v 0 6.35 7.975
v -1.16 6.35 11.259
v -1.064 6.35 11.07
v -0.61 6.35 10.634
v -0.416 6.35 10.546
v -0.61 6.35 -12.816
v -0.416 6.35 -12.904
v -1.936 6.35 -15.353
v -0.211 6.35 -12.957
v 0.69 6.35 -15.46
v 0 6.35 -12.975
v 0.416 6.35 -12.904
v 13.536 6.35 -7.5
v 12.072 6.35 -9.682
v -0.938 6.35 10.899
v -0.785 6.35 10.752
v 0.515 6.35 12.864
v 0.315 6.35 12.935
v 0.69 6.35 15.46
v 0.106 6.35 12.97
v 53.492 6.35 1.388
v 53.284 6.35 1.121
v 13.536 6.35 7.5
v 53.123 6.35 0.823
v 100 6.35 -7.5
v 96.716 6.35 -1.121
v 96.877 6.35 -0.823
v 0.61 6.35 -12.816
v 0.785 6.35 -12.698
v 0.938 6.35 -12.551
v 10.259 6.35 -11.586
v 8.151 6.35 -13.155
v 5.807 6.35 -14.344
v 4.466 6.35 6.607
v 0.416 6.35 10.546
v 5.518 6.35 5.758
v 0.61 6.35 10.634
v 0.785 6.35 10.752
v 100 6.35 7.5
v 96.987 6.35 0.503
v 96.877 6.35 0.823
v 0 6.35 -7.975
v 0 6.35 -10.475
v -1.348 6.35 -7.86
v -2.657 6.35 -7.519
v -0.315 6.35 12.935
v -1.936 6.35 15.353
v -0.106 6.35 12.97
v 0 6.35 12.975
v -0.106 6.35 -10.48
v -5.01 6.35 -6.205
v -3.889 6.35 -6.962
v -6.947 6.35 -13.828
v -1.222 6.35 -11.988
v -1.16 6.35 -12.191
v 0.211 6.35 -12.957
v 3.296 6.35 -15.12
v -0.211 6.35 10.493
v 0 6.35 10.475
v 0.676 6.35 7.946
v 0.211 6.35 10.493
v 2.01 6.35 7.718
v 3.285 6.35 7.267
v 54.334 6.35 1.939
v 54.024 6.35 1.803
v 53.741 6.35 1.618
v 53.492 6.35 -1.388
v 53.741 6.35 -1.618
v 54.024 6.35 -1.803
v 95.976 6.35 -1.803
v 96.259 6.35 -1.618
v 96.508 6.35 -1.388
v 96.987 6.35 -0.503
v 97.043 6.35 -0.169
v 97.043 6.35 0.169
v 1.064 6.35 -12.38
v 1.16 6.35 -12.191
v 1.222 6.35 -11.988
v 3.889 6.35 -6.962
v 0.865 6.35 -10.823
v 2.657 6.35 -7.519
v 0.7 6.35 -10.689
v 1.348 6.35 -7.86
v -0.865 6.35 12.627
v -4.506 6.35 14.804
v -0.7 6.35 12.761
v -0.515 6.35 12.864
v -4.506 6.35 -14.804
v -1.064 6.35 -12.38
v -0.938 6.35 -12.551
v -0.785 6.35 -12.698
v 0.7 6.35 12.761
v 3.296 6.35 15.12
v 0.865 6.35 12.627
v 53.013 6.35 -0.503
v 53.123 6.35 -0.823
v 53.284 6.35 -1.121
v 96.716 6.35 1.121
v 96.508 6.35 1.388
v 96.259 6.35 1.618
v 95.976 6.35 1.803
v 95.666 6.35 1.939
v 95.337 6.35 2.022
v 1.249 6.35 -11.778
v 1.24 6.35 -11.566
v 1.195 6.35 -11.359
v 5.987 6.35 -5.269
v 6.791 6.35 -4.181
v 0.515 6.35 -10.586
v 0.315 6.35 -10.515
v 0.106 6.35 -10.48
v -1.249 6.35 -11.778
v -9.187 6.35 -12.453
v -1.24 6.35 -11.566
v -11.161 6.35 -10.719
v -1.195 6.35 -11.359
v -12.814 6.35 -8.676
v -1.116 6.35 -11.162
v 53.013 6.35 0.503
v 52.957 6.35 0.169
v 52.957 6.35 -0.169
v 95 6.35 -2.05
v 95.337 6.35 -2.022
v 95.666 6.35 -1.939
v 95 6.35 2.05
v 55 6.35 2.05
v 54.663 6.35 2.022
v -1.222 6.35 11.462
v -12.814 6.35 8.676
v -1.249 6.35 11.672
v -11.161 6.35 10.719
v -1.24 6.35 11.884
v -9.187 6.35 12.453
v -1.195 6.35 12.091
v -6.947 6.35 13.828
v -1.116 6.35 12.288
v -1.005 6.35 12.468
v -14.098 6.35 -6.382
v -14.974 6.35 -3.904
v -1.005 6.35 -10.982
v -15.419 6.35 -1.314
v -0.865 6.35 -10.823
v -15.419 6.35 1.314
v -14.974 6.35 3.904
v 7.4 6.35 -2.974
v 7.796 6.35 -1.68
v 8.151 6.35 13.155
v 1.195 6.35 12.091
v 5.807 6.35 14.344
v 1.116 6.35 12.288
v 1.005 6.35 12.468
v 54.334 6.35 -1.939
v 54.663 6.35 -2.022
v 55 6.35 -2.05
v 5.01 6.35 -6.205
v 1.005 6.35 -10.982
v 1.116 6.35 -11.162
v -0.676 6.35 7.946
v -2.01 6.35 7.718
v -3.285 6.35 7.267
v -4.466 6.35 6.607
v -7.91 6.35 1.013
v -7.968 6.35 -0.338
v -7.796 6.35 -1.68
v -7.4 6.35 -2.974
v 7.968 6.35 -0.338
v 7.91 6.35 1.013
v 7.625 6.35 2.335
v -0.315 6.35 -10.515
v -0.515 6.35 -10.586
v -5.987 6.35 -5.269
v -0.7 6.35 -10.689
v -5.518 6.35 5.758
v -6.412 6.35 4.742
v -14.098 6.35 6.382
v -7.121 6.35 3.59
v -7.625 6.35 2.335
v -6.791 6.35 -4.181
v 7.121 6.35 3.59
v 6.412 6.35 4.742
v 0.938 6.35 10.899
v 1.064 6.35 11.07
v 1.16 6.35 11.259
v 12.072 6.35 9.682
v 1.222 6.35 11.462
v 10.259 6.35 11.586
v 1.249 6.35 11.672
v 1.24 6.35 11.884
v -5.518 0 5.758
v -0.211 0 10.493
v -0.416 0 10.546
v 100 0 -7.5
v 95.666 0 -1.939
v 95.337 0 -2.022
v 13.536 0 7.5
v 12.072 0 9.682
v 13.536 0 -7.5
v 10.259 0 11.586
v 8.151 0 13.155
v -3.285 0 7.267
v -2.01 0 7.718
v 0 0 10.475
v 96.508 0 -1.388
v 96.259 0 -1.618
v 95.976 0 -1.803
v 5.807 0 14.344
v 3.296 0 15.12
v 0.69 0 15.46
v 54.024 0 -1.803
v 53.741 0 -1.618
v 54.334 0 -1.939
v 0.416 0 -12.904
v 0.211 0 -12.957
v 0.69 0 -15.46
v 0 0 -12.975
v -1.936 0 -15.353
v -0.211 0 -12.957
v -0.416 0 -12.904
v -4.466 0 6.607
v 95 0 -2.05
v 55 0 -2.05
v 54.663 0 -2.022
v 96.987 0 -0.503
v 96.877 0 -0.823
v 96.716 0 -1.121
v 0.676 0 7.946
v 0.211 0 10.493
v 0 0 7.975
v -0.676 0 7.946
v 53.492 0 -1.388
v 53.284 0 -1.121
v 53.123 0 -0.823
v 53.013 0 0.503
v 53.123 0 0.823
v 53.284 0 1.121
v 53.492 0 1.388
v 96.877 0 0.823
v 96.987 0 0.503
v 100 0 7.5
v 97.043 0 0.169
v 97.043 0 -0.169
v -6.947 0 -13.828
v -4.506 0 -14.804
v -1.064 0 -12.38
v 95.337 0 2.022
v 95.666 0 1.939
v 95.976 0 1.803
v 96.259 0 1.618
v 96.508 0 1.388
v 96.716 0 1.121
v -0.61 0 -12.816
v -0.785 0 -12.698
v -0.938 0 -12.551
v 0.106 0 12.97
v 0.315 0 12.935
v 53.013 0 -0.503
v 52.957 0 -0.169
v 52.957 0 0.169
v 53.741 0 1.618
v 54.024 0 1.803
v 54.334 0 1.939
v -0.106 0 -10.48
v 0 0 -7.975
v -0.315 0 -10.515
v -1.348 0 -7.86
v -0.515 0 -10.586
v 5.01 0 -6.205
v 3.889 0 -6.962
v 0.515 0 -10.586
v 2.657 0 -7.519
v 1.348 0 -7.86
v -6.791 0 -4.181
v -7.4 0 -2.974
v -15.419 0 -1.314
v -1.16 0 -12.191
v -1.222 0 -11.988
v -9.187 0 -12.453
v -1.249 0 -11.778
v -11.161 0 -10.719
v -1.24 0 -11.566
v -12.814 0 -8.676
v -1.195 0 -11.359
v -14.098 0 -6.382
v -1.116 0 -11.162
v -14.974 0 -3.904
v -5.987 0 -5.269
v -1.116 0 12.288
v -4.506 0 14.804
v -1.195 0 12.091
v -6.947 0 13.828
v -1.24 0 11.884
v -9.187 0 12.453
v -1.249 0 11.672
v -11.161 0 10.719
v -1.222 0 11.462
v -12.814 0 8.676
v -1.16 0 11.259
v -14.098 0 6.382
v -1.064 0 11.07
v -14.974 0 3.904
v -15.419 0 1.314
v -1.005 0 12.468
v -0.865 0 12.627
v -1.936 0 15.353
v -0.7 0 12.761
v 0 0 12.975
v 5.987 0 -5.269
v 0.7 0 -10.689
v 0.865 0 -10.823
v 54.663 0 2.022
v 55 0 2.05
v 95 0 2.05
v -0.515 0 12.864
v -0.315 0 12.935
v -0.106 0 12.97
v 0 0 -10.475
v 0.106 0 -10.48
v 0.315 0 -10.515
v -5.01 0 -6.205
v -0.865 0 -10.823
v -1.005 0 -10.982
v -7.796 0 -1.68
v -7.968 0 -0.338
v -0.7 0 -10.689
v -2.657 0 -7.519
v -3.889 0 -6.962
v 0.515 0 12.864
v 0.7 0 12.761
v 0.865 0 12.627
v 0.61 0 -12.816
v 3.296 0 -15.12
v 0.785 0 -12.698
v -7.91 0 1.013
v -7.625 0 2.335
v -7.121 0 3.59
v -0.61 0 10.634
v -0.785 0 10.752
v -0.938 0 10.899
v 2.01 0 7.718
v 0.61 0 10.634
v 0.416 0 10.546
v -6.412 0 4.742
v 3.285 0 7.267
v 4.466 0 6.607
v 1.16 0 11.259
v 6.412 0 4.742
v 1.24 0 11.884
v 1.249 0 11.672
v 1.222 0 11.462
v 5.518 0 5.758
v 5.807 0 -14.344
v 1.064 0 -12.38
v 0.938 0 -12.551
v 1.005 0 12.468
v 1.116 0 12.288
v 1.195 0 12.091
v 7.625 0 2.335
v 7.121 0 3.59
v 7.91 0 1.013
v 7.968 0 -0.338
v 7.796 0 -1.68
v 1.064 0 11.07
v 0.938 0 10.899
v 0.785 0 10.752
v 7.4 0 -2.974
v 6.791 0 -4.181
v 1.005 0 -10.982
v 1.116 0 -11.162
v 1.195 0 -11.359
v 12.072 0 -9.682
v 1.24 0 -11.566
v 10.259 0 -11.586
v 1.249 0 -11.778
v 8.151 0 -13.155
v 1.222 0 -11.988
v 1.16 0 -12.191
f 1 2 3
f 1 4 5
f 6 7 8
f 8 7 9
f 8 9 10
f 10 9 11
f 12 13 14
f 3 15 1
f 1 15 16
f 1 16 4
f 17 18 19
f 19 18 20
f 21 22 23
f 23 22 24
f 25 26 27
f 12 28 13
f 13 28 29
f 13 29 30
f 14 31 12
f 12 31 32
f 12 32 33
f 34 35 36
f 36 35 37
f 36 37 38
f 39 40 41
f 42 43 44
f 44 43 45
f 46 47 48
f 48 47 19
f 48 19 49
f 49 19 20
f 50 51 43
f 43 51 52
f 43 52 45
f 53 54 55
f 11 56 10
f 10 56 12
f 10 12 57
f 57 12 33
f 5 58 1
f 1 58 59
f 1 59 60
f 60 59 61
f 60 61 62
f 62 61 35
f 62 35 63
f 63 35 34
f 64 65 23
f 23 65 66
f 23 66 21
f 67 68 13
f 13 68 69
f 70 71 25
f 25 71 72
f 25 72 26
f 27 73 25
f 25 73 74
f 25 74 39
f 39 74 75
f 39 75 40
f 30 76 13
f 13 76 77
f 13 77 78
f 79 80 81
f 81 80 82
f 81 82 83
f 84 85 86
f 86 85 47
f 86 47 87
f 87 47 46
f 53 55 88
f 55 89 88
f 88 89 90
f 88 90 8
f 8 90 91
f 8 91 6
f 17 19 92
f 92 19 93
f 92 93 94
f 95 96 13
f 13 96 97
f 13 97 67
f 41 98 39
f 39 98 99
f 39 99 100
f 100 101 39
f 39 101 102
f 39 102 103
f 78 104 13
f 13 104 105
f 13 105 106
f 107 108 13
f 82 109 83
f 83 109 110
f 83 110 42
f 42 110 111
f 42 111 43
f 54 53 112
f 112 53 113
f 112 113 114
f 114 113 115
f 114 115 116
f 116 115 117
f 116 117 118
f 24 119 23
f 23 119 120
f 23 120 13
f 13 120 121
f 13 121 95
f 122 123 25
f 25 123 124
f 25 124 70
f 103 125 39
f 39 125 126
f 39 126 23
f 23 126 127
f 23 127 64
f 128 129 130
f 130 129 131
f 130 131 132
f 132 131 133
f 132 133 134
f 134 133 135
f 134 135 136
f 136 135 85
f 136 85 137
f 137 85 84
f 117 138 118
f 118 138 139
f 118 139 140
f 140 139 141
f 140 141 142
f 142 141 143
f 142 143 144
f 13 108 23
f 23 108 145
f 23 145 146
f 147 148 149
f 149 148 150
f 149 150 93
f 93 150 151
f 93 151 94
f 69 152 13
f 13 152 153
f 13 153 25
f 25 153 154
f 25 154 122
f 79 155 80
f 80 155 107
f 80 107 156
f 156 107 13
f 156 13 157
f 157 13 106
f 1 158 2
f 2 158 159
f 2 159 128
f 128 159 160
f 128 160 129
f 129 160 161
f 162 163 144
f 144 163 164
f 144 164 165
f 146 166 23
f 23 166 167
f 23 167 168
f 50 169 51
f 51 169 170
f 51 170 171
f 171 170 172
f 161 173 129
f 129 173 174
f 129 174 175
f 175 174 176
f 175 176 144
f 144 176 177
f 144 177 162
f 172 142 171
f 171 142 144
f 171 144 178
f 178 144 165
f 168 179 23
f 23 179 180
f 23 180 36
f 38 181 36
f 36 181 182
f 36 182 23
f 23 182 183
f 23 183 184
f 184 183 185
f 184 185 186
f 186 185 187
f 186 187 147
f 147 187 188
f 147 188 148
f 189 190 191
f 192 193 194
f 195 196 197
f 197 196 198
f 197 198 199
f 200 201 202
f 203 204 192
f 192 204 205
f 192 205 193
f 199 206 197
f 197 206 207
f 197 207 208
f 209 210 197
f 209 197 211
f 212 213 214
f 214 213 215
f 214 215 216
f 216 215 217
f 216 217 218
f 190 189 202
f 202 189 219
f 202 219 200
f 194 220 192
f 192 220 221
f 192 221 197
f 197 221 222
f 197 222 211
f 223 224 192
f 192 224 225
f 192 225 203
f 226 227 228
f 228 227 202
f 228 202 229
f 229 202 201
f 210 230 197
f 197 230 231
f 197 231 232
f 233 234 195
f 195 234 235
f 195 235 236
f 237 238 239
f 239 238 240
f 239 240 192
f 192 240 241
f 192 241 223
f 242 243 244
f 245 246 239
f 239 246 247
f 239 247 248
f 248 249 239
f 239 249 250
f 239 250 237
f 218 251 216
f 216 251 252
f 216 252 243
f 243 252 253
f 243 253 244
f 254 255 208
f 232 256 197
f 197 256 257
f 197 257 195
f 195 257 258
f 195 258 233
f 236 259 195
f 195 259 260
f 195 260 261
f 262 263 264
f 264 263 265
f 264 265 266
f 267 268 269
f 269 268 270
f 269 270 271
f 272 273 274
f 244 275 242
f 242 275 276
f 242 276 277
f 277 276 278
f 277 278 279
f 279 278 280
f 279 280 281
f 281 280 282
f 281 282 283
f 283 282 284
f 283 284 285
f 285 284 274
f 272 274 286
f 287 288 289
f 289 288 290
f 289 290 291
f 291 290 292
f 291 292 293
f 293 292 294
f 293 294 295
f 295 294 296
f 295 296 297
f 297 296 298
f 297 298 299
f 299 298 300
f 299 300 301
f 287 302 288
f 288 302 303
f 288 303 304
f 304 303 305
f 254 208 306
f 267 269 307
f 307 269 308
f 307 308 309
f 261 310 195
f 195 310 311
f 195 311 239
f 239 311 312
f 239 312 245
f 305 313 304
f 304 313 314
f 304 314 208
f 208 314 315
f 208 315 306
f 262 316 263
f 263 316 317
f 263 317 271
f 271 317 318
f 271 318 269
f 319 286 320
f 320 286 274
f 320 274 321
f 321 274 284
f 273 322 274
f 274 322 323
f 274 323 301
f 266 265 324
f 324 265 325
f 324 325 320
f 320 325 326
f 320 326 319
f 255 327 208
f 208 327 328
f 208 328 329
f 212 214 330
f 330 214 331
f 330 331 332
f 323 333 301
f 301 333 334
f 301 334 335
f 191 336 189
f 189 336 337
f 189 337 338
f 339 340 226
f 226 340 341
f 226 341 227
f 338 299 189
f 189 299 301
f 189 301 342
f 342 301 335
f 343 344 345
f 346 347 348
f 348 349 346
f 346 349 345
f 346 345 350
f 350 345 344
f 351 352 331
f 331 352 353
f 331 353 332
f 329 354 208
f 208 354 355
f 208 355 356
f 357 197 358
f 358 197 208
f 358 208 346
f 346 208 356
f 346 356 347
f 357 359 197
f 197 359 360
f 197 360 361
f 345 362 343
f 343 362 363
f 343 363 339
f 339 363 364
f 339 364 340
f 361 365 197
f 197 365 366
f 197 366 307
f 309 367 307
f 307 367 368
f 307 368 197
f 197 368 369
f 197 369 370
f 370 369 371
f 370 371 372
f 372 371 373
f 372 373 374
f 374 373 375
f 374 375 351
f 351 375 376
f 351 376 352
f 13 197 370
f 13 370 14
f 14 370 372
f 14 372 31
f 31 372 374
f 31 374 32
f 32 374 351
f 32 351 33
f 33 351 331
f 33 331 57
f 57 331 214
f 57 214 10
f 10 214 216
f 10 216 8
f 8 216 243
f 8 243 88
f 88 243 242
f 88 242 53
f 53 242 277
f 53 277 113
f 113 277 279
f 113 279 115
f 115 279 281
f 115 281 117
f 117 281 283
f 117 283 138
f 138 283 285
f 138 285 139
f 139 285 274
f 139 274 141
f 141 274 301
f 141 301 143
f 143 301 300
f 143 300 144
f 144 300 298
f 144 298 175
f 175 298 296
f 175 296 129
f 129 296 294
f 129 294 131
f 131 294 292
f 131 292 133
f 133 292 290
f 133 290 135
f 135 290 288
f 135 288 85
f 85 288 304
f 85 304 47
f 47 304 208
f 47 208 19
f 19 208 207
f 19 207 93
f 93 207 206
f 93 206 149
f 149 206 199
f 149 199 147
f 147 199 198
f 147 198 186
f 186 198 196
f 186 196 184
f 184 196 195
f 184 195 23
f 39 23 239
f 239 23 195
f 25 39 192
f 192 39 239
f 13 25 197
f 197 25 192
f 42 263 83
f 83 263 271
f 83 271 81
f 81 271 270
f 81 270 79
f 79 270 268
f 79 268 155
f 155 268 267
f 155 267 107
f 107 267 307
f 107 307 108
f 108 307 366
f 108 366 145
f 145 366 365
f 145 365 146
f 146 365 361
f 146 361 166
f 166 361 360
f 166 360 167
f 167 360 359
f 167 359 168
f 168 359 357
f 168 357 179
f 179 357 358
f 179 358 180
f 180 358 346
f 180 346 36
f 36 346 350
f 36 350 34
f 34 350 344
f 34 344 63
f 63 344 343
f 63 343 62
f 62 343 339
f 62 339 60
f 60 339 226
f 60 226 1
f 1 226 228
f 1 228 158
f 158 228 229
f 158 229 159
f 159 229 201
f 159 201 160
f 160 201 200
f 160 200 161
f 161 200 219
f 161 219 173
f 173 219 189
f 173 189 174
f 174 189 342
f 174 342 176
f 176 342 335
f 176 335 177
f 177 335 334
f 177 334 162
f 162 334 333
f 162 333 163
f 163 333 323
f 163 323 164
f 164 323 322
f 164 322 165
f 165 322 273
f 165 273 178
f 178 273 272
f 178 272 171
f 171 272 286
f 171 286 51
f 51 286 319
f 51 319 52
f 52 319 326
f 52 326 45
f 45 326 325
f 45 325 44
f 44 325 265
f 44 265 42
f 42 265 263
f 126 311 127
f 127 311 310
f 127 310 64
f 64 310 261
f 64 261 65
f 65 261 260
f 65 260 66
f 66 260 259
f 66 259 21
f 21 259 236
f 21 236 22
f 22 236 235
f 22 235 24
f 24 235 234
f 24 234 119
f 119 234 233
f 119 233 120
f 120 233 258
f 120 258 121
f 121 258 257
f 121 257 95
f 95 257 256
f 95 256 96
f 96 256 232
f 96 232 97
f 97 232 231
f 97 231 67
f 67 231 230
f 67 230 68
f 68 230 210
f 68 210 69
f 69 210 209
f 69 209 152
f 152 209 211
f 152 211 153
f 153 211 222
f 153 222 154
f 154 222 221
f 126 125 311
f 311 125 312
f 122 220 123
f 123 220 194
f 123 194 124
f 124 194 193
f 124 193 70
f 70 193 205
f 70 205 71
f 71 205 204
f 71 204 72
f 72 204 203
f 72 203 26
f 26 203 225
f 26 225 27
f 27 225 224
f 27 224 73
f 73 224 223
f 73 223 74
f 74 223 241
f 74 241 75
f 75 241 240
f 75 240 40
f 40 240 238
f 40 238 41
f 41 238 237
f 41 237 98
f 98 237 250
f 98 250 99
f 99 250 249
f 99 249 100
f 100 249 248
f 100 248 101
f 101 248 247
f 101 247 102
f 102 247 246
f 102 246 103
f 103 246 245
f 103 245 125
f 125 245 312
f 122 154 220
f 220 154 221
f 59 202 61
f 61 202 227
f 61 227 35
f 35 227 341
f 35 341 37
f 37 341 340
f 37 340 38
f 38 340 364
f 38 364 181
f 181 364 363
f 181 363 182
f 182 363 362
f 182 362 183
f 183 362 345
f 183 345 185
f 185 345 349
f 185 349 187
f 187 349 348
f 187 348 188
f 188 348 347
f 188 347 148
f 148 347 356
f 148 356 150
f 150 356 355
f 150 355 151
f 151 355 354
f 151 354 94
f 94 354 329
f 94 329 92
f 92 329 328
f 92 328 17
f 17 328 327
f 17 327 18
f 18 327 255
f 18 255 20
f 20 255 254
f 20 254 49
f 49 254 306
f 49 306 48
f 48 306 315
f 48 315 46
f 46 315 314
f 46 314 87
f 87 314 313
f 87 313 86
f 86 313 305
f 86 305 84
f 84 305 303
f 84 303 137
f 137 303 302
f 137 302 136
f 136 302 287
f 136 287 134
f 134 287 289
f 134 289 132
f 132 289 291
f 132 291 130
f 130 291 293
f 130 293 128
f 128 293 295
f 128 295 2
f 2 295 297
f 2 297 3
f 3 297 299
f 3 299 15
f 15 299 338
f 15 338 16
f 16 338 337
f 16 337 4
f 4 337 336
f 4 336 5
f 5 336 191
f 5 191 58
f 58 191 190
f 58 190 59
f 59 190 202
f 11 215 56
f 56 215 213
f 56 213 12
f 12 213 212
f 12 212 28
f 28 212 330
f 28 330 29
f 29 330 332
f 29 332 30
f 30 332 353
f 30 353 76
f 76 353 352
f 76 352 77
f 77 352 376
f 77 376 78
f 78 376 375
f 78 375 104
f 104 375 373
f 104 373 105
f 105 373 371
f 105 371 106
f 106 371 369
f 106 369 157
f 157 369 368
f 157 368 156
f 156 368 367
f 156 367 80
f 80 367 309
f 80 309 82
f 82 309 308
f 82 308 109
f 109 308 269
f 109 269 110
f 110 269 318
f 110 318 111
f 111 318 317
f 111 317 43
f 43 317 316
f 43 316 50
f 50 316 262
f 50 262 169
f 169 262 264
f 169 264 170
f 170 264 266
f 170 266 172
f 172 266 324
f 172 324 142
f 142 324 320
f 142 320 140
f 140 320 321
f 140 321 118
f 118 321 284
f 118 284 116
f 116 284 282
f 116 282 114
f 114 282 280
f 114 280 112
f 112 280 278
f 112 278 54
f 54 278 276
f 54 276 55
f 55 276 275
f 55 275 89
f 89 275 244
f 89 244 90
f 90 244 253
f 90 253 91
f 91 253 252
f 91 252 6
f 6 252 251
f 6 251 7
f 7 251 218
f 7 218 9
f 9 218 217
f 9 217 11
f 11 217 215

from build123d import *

# Parameters (mm, degrees)
SKETCH1_R           = 7.975
SKETCH1_R_2         = 1.25
BOSS_EXTRUDE1_DEPTH = 6.35


with BuildPart() as part:
    # Sketch1 → Boss-Extrude1 (new body)
    with BuildSketch(Plane(origin=(0, 0, 0), x_dir=(1, 0, 0), z_dir=(0, 1, 0))):
        with BuildLine():
            Line((13.53608603, 7.5), (100, 7.5))
            Line((100, 7.5), (100, -7.5))
            Line((100, -7.5), (13.53608603, -7.5))
            ThreePointArc((13.53608603, -7.5), (-15.475, 0), (13.53608603, 7.5))
        make_face()
        with Locations(Location((0, 0, 0), (0, 0, 270))):
            Circle(SKETCH1_R, mode=Mode.SUBTRACT)
        with Locations(Location((0, -11.725, 0), (0, 0, 270))):
            Circle(SKETCH1_R_2, mode=Mode.SUBTRACT)
        with Locations(Location((0, 11.725, 0), (0, 0, 270))):
            Circle(SKETCH1_R_2, mode=Mode.SUBTRACT)
        with BuildLine():
            Line((55, 2.05), (95, 2.05))
            ThreePointArc((95, 2.05), (97.05, 0), (95, -2.05))
            Line((95, -2.05), (55, -2.05))
            ThreePointArc((55, -2.05), (52.95, 0), (55, 2.05))
        make_face(mode=Mode.SUBTRACT)
    extrude(amount=BOSS_EXTRUDE1_DEPTH)


solid = part.part
